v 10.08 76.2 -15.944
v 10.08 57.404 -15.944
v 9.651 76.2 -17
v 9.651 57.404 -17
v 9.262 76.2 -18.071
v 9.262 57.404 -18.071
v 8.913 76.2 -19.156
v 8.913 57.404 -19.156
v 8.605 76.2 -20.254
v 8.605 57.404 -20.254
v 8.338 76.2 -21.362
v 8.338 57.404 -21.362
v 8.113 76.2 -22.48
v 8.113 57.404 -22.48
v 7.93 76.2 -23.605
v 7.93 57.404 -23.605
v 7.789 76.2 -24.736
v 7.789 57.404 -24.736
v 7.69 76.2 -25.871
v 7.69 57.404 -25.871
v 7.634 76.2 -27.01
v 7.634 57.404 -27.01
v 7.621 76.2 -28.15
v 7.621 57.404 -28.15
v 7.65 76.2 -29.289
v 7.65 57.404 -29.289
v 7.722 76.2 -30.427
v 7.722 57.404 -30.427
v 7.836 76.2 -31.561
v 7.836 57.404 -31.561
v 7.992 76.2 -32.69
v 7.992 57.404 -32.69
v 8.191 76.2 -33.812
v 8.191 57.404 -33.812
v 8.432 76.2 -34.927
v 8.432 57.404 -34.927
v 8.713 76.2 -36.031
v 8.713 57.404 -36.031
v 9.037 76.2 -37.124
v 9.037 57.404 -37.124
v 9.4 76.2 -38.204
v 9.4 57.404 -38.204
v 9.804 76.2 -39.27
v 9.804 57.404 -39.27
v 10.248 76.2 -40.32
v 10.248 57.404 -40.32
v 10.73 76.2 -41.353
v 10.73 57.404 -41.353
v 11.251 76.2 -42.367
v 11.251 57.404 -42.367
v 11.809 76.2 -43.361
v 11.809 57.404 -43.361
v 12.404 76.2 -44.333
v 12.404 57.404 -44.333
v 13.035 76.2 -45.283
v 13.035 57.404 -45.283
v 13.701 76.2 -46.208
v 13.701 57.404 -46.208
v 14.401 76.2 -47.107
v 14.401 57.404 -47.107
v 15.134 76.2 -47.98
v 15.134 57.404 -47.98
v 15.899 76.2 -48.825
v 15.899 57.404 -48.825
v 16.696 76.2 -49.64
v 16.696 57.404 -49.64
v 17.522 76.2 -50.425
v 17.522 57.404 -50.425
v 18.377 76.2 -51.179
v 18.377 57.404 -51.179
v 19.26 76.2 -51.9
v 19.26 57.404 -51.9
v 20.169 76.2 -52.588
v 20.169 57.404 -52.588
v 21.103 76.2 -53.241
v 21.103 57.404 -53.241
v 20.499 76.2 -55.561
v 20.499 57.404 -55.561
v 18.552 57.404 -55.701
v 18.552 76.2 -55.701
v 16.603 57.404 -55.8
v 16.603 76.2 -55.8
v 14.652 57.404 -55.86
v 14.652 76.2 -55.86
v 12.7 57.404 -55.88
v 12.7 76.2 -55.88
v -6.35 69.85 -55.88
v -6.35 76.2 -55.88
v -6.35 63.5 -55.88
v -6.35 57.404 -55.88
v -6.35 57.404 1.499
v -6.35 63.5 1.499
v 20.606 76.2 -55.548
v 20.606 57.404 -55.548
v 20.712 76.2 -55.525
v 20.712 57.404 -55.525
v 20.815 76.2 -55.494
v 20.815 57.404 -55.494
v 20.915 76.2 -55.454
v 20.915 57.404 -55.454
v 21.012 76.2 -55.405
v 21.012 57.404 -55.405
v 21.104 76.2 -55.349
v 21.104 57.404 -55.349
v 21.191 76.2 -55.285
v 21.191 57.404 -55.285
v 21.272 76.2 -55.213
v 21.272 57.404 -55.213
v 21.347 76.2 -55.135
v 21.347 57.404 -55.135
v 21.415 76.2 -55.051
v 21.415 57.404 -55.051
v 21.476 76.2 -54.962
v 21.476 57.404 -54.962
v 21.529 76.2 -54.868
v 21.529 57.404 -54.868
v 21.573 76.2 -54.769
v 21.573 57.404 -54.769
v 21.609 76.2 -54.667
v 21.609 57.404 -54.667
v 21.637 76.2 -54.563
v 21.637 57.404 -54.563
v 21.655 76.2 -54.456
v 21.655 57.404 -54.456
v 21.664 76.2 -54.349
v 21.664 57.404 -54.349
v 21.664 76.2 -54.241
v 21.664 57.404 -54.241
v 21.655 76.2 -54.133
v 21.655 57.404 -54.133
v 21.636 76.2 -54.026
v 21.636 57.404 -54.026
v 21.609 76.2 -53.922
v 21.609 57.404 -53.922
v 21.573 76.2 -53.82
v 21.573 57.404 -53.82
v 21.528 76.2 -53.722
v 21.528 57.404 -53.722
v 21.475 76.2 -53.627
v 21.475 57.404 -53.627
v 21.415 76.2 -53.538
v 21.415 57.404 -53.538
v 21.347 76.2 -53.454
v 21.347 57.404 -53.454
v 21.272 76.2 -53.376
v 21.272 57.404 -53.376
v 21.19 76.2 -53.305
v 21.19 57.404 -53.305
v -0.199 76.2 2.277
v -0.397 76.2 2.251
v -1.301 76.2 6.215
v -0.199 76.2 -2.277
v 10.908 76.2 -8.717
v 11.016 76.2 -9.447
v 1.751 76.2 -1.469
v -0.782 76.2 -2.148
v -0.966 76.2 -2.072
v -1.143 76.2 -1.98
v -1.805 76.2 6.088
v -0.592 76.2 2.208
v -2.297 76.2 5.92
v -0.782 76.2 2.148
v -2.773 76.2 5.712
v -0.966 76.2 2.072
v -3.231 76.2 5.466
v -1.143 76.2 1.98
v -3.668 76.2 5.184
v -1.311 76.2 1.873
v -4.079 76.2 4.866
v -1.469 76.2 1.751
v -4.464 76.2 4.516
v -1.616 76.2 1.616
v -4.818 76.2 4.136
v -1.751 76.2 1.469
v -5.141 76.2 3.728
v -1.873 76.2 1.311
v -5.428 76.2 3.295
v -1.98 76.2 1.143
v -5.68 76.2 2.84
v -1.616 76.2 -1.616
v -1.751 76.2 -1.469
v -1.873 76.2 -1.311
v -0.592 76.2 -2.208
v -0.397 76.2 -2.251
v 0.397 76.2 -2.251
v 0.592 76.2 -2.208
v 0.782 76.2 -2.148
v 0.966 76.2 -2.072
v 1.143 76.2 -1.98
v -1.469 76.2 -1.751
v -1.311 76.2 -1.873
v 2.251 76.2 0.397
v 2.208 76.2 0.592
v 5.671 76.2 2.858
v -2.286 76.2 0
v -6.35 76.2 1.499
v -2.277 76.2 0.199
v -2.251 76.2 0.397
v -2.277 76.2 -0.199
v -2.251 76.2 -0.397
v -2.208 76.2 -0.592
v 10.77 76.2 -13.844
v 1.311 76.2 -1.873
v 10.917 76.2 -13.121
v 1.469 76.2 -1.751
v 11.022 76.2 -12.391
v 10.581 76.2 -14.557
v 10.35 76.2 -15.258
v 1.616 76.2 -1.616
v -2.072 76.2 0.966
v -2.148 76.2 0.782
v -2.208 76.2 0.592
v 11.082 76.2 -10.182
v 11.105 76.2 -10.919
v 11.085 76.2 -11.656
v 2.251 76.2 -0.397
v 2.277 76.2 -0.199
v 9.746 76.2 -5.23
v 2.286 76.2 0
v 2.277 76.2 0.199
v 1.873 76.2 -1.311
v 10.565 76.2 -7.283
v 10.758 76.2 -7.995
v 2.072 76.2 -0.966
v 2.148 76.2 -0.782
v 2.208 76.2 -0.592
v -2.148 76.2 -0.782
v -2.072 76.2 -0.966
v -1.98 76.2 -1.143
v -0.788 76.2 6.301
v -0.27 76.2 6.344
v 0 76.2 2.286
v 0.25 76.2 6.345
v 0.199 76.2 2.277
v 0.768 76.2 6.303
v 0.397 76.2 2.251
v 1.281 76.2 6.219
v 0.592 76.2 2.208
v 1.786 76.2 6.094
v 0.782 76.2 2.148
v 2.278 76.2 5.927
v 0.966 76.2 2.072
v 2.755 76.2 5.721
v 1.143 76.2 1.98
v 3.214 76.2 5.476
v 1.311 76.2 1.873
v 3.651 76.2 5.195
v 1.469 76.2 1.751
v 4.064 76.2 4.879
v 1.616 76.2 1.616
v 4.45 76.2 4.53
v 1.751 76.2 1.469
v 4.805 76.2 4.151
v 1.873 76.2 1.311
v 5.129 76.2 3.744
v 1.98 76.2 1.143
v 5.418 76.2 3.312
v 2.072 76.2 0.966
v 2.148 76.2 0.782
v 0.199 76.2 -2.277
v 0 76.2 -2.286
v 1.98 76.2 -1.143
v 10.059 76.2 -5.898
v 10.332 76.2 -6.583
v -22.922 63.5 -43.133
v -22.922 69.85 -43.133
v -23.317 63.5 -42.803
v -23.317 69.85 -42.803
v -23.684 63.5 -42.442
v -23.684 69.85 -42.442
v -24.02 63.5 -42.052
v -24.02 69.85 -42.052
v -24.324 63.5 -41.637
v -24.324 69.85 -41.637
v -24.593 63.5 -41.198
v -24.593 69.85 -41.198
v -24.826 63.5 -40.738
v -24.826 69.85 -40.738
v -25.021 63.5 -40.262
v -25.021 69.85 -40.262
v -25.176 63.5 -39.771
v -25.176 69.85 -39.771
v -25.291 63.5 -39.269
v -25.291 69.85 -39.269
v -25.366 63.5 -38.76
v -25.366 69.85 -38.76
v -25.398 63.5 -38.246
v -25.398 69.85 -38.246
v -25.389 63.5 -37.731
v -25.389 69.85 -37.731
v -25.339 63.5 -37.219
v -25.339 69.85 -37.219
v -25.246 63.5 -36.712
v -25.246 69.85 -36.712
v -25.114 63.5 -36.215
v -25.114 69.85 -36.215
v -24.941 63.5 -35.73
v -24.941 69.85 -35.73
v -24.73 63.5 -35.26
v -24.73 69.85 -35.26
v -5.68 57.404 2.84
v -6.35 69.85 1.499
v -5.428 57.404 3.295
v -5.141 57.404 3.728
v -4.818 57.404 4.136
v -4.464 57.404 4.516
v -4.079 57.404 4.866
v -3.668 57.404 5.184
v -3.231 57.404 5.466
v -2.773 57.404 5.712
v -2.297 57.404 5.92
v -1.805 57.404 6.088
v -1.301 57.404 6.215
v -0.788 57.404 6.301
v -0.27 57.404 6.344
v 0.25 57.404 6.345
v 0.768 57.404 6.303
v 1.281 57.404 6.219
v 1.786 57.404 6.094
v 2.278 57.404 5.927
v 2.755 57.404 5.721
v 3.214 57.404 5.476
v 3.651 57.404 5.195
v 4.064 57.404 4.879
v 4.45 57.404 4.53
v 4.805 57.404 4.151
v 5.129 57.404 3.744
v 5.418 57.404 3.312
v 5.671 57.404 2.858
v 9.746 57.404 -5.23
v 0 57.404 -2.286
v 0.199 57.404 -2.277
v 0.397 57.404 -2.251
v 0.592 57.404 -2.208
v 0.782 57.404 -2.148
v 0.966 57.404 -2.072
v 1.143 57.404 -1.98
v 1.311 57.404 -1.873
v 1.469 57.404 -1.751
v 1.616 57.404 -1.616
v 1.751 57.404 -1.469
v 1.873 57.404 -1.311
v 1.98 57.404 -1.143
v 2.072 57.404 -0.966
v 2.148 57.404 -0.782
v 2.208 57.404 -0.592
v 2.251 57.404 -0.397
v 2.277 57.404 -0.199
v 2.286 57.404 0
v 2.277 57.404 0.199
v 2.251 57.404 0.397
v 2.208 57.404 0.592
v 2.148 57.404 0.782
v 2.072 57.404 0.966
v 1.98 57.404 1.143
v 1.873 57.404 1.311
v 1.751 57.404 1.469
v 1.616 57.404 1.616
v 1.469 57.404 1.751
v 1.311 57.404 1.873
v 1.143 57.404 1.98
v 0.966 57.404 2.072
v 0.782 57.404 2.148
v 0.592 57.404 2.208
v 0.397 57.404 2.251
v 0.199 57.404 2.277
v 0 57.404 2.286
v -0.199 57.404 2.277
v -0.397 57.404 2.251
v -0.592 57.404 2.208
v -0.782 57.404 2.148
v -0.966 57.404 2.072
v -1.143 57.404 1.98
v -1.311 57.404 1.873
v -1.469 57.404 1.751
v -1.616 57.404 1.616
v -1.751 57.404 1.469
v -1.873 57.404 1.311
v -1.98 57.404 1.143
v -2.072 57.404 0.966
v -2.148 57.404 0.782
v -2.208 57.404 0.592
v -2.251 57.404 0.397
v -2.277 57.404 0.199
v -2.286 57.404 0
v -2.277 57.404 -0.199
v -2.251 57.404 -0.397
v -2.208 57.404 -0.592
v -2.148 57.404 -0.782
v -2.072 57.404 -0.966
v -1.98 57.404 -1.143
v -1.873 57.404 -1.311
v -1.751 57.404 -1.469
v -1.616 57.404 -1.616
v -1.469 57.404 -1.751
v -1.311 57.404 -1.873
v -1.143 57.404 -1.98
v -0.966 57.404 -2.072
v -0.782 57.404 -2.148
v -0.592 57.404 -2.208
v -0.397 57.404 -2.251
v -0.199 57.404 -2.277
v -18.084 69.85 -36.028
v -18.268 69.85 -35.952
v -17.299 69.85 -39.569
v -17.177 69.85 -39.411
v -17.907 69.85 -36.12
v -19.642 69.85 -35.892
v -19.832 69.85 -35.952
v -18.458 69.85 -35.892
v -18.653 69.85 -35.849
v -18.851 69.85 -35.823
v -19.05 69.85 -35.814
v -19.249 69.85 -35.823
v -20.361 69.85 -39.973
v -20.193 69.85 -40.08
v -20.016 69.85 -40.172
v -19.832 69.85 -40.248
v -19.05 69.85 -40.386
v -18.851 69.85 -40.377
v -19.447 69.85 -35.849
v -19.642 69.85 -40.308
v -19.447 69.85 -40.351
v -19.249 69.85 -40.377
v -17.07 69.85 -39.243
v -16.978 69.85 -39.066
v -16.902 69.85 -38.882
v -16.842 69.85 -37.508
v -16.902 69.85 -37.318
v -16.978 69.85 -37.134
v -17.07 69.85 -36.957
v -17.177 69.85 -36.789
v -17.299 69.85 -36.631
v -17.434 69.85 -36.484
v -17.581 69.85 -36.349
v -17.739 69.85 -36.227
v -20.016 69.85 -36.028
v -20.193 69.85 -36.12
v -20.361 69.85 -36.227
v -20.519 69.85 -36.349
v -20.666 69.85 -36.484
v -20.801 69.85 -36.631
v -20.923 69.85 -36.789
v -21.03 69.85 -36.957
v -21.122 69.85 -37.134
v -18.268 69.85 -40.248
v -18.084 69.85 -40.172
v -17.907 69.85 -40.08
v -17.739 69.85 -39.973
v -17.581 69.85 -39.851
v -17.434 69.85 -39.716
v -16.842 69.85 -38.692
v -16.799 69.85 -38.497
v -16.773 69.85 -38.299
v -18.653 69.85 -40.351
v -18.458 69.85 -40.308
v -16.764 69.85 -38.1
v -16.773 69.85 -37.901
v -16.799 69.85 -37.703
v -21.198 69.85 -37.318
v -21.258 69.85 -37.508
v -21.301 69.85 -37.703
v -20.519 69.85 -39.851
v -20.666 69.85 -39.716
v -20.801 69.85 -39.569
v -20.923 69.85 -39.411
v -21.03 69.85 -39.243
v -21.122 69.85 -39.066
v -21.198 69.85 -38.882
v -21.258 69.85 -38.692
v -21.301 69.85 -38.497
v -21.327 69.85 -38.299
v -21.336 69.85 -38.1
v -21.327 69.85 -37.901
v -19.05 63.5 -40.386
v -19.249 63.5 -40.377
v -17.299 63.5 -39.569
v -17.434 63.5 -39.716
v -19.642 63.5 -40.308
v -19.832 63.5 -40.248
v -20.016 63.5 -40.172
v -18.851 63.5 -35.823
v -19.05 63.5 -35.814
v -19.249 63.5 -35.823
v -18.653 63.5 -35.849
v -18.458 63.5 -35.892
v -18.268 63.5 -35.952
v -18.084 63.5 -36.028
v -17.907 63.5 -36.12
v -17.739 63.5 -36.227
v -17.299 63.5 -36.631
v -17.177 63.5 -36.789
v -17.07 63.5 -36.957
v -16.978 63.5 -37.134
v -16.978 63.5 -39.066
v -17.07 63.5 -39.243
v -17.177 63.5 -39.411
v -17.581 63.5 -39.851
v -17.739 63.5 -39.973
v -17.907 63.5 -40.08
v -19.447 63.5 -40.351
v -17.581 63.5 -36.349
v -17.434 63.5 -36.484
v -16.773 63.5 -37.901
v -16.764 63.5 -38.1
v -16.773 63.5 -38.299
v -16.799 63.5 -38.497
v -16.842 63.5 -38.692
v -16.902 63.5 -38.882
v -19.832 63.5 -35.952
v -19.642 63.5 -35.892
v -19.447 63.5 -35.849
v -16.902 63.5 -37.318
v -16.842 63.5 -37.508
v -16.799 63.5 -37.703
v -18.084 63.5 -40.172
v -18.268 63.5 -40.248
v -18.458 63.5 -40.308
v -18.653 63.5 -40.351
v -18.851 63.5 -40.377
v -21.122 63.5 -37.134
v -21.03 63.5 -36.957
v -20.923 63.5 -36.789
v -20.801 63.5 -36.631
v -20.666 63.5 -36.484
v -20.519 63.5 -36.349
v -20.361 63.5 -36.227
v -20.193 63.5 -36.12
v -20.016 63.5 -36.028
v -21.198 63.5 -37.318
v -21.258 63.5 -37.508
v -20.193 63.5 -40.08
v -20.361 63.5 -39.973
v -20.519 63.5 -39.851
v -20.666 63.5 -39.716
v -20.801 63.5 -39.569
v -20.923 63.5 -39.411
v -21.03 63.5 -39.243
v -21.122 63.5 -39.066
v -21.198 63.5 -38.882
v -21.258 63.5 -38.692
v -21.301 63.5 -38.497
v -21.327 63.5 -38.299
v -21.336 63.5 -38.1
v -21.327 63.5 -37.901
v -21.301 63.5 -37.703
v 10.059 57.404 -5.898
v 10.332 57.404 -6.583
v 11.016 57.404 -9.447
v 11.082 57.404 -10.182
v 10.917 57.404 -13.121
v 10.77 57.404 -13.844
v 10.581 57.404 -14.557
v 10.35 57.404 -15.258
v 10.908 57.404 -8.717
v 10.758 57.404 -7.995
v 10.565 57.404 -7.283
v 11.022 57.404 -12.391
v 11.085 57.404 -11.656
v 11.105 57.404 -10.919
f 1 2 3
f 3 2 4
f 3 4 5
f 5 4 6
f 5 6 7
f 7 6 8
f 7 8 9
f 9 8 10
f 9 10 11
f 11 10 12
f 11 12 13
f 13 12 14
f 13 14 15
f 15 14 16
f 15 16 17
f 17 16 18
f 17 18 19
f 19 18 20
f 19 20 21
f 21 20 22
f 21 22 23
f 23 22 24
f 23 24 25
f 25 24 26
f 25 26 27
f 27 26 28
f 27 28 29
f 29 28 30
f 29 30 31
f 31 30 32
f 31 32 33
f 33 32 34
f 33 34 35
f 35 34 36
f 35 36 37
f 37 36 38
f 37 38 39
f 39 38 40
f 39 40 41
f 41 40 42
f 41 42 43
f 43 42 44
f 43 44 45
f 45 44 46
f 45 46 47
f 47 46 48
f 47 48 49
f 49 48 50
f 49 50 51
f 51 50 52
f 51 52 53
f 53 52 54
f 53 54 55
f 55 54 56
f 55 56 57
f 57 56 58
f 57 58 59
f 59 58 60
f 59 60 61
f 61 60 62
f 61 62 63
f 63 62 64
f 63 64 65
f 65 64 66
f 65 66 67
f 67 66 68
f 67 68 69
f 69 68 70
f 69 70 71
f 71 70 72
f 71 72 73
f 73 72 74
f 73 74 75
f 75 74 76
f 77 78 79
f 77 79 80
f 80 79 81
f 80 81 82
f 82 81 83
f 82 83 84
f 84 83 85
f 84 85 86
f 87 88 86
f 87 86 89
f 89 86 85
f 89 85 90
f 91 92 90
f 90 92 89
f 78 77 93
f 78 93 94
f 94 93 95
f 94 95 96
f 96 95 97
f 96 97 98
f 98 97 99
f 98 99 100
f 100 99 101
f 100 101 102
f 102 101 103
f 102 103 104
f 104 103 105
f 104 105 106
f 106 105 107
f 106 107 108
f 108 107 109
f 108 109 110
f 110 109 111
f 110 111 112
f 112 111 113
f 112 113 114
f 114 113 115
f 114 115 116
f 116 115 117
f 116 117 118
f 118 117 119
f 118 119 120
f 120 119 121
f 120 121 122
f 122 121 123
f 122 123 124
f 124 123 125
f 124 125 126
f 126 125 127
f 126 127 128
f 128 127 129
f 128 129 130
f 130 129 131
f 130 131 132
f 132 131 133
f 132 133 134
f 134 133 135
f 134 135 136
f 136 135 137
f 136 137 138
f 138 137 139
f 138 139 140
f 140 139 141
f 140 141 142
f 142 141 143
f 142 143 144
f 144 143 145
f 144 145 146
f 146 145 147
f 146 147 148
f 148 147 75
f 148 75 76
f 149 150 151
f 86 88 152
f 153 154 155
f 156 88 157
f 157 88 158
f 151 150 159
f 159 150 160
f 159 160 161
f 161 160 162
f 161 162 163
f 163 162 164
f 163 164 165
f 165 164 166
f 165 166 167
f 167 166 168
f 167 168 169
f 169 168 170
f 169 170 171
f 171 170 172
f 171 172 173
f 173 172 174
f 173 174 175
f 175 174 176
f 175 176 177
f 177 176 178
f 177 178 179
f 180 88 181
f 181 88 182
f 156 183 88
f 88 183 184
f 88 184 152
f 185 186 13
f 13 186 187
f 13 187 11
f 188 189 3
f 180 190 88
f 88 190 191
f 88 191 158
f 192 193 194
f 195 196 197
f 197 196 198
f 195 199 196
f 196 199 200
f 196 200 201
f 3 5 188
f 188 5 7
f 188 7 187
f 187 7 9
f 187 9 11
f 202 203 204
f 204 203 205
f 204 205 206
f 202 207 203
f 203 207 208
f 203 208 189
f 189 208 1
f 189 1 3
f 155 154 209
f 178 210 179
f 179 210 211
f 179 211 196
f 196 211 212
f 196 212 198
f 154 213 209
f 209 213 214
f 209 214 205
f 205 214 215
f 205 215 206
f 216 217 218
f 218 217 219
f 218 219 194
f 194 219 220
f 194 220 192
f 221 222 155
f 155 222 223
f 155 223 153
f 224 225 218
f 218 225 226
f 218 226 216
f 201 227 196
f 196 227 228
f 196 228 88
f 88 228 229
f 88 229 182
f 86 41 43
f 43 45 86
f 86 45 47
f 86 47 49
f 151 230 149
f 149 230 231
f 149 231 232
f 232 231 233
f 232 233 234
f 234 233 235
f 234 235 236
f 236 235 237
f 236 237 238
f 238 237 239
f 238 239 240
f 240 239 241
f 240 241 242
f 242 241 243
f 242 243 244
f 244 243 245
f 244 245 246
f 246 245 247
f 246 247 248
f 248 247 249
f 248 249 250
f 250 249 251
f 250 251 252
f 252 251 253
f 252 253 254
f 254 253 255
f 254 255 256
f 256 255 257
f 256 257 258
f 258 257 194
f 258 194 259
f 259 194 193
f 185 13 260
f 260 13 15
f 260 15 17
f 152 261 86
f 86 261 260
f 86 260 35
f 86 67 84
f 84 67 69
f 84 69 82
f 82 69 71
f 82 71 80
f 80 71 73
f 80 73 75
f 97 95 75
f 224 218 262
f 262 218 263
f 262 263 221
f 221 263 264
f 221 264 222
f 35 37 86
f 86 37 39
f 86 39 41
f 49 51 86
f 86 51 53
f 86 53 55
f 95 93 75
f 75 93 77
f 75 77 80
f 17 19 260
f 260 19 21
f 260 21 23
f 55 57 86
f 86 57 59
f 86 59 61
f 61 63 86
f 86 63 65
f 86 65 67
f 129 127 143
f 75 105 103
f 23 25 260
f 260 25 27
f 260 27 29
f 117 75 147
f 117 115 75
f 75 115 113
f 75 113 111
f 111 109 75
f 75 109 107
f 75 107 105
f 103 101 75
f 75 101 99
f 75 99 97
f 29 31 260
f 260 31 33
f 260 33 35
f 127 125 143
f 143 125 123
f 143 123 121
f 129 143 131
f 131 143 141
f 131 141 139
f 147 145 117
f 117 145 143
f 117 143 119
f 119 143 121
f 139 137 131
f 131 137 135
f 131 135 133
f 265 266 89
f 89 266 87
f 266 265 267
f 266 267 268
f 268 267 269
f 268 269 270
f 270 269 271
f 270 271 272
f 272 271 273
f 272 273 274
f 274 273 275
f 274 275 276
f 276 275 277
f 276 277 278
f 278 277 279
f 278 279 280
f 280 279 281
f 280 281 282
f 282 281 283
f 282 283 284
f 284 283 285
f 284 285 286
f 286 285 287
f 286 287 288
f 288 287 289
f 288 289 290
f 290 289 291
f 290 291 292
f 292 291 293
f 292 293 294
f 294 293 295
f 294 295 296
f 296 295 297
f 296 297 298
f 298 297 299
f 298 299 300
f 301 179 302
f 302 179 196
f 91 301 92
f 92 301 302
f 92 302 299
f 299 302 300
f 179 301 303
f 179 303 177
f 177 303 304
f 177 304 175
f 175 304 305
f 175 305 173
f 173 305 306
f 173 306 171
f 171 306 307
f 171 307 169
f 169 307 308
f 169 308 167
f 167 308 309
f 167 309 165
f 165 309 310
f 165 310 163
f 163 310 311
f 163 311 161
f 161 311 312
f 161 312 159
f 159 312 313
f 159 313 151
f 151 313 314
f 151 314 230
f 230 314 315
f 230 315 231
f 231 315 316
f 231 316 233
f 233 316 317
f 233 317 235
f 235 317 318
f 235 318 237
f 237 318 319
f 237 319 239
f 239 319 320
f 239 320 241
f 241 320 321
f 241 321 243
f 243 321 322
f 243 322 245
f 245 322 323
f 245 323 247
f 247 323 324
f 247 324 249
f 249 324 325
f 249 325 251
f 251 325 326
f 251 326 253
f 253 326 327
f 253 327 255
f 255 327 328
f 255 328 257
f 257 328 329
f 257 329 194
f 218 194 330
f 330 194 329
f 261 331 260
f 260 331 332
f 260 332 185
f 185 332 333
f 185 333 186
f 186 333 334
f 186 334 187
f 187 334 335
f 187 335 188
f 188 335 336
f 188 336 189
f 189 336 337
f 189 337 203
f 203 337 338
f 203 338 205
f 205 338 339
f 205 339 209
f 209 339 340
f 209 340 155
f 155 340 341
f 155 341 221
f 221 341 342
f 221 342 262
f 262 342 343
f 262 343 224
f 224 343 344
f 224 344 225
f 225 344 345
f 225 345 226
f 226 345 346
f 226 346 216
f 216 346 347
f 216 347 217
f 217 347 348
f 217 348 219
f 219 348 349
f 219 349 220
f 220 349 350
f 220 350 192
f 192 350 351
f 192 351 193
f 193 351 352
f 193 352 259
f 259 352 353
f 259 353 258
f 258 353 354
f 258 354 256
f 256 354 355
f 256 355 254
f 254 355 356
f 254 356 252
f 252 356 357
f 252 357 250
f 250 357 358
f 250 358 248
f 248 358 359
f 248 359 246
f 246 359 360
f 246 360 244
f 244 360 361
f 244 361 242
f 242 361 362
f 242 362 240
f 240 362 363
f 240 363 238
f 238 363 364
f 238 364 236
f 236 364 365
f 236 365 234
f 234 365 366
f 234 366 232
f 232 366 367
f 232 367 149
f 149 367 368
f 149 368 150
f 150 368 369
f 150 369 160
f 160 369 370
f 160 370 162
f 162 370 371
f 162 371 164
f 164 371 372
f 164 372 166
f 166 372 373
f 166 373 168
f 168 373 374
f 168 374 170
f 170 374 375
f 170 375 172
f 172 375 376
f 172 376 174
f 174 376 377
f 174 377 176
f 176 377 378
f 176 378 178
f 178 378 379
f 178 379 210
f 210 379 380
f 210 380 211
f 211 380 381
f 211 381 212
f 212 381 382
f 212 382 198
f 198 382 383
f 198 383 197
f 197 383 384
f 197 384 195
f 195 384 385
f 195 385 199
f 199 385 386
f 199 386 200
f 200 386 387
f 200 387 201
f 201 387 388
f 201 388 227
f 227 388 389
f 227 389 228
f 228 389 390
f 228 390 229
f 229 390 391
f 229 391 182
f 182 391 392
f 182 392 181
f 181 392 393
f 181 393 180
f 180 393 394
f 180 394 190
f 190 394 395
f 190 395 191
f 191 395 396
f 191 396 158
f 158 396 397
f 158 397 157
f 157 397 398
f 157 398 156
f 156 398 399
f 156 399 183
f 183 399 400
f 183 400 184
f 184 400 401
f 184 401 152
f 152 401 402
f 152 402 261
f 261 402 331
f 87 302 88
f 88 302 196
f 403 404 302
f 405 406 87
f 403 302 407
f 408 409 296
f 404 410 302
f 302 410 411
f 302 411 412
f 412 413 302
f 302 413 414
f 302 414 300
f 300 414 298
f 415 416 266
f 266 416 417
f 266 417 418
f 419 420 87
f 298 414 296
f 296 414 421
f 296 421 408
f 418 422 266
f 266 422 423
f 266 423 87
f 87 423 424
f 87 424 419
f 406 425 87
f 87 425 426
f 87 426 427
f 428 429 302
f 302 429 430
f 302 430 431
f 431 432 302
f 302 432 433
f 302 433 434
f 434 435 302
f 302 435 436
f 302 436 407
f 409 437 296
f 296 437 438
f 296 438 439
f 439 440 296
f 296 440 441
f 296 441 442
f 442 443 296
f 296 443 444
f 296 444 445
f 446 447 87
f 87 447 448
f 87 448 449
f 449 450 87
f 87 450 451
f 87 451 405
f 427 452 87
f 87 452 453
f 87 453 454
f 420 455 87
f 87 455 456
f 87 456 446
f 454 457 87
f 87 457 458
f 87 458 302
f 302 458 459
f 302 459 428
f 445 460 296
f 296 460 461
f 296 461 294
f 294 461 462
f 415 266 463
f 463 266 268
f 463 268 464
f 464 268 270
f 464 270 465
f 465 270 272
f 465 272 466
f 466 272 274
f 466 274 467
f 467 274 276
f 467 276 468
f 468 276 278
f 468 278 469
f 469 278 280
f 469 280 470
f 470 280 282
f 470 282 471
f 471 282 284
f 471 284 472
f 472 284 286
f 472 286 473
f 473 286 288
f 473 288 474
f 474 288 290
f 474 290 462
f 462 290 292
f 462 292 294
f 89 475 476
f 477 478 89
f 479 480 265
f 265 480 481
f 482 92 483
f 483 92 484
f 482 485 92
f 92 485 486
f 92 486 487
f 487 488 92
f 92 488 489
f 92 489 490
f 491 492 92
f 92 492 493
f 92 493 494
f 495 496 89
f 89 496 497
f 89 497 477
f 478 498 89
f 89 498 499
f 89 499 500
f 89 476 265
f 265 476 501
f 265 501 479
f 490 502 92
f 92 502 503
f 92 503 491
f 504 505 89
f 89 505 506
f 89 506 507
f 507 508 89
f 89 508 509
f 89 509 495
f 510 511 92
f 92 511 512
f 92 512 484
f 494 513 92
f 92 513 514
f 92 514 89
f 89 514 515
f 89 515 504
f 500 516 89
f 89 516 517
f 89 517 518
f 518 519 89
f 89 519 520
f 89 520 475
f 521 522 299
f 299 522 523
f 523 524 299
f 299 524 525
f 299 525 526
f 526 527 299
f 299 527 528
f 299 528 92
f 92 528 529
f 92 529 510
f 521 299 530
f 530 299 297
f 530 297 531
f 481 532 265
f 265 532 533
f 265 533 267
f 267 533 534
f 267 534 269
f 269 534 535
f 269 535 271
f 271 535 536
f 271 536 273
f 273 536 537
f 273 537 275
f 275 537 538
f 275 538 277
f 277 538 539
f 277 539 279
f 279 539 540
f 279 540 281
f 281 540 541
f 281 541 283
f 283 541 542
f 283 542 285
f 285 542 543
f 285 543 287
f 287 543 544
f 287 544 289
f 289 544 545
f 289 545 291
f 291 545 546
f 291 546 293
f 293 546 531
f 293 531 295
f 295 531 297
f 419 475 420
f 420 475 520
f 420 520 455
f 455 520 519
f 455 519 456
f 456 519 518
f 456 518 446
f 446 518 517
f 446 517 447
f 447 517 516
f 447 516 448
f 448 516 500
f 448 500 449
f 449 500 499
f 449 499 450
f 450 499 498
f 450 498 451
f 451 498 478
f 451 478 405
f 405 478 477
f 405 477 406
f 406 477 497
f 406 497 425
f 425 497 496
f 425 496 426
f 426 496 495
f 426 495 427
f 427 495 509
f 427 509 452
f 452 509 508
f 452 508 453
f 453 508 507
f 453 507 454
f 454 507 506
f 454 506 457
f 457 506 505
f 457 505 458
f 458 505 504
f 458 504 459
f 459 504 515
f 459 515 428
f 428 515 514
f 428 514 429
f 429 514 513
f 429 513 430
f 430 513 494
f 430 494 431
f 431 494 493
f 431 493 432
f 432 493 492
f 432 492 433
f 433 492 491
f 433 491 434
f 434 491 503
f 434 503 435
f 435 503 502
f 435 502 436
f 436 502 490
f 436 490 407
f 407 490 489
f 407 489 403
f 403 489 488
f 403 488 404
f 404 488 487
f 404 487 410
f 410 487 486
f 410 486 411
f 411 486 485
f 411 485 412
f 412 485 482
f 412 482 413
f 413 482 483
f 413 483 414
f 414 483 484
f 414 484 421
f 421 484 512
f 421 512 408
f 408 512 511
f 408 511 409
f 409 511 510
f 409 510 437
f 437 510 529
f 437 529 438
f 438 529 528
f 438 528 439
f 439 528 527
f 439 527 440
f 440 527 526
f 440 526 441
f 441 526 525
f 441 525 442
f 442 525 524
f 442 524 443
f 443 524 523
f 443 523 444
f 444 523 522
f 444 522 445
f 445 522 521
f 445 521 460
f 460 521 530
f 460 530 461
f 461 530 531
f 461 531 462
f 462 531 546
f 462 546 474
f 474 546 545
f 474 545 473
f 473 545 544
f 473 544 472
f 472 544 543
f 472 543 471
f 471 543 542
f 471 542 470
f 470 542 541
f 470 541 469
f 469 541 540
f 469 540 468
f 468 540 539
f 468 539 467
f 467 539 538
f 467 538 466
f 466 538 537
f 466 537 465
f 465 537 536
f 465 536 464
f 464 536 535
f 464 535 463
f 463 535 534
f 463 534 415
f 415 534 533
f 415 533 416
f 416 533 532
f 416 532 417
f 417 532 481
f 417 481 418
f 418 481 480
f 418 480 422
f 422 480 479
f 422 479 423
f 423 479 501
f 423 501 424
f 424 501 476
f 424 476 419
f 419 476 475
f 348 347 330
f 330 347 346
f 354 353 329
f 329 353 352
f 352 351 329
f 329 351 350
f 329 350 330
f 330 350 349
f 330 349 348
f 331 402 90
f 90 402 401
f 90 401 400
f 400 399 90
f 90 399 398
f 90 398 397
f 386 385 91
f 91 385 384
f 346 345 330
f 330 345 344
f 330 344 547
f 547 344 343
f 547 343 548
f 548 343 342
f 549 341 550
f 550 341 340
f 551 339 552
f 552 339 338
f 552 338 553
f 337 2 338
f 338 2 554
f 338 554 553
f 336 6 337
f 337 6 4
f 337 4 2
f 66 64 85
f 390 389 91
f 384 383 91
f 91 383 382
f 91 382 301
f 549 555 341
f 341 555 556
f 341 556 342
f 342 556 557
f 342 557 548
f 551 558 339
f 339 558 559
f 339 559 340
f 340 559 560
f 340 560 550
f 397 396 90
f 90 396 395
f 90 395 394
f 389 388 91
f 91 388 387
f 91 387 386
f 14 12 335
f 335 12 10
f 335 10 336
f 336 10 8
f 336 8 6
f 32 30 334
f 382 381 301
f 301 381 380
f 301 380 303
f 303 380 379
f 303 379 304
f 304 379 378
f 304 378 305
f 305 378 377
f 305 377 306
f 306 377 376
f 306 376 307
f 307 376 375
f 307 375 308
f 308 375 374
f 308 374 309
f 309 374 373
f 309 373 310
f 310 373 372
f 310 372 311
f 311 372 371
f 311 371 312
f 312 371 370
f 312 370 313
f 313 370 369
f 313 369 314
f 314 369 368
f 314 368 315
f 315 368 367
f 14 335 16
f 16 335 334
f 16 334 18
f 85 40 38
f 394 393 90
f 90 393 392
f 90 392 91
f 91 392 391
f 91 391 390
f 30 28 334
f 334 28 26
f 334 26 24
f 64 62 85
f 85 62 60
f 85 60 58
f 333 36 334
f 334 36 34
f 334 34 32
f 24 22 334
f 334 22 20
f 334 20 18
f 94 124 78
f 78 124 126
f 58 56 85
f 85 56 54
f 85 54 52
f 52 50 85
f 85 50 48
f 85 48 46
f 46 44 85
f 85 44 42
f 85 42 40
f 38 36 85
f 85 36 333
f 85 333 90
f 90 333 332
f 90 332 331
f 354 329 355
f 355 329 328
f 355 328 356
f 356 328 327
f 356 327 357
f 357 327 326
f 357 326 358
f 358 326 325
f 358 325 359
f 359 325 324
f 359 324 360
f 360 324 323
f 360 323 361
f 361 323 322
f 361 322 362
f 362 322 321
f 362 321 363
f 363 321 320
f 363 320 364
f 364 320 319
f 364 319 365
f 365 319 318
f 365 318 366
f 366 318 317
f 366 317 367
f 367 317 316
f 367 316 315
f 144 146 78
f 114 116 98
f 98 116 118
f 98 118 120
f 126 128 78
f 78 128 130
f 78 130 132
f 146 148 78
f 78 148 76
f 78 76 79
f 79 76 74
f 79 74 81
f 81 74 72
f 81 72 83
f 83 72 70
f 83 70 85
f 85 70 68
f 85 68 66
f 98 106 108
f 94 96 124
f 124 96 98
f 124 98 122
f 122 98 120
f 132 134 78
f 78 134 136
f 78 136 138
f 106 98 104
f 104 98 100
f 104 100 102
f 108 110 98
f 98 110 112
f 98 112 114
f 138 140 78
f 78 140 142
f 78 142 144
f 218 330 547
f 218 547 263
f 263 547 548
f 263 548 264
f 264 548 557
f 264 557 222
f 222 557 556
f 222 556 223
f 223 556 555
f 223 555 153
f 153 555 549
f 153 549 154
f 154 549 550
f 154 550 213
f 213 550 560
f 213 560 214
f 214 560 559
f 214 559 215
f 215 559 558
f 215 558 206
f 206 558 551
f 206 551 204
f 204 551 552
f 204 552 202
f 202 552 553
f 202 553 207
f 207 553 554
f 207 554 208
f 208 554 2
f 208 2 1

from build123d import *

# Parameters (mm, degrees)
SKETCH1_R           = 2.286
BOSS_EXTRUDE1_DEPTH = 76.2
SKETCH2_W           = 19.05
SKETCH2_H           = 63.5
SKETCH2_H_2         = 6.35
CUT_EXTRUDE1_DEPTH  = 102.60793719
SKETCH3_W           = 25.4
SKETCH3_H           = 6.858
CUT_EXTRUDE2_DEPTH  = 100.367382835
FILLET1_R           = 1.27
FILLET2_R           = 12.7
SKETCH4_W           = 59.009552573
SKETCH4_H           = 74.343024825
CUT_EXTRUDE3_DEPTH  = 85.041380514


with BuildPart() as part:
    # Sketch1 → Boss-Extrude1 (new body)
    with BuildSketch(Plane(origin=(0, 0, 0), x_dir=(1, 0, 0), z_dir=(0, 1, 0))):
        with BuildLine():
            Line((-5.679612663, -2.839806331), (-24.729612663, 35.260193669))
            ThreePointArc((-24.729612663, 35.260193669), (-25.238895582, 39.521292183), (-22.921549668, 43.133249763))
            Line((-22.921549668, 43.133249763), (-6.35, 55.88))
            Line((-6.35, 55.88), (12.7, 55.88))
            ThreePointArc((12.7, 55.88), (18.555327731, 55.700289554), (24.388613689, 55.161834718))
            ThreePointArc((24.388613689, 55.161834718), (8.638623245, 35.753941369), (12.7, 11.091546065))
            Line((12.7, 11.091546065), (5.670682494, -2.857596902))
            ThreePointArc((5.670682494, -2.857596902), (-0.009953044, -6.3499922), (-5.679612663, -2.839806331))
        make_face()
        with Locations(Location((0, 0, 0), (0, 0, 90))):
            Circle(SKETCH1_R, mode=Mode.SUBTRACT)
        with Locations(Location((-19.05, 38.1, 0), (0, 0, 90))):
            Circle(SKETCH1_R, mode=Mode.SUBTRACT)
    extrude(amount=BOSS_EXTRUDE1_DEPTH)

    # Sketch2 → Cut-Extrude1 (cut, through all)
    with BuildSketch(Plane(origin=(0, 0, -55.88), x_dir=(-1, 0, 0), z_dir=(0, 0, -1))):
        with Locations((15.875, 31.75)):
            Rectangle(SKETCH2_W, SKETCH2_H)
        with Locations((15.875, 73.025)):
            Rectangle(SKETCH2_W, SKETCH2_H_2)
    extrude(amount=-CUT_EXTRUDE1_DEPTH, mode=Mode.SUBTRACT)

    # Sketch3 → Cut-Extrude2 (cut, through all)
    with BuildSketch(Plane.ZY.offset(6.35)):
        with Locations((-6.35, 53.975)):
            Rectangle(SKETCH3_W, SKETCH3_H)
    extrude(amount=-CUT_EXTRUDE2_DEPTH, mode=Mode.SUBTRACT)

    # Fillet1
    fillet1_edges = [part.edges().sort_by_distance(p)[0] for p in [
        (24.388613689, 38.1, -55.161834718),
    ]]
    fillet(fillet1_edges, radius=FILLET1_R)

    # Fillet2
    fillet2_edges = [part.edges().sort_by_distance(p)[0] for p in [
        (12.7, 66.802, -11.091546065),
        (12.7, 25.273, -11.091546065),
    ]]
    fillet(fillet2_edges, radius=FILLET2_R)

    # Sketch4 → Cut-Extrude3 (cut, through all)
    with BuildSketch(Plane.XZ.offset(-57.404)):
        with Locations((-1.749174137, -25.683599477)):
            Rectangle(SKETCH4_W, SKETCH4_H)
    extrude(amount=CUT_EXTRUDE3_DEPTH, mode=Mode.SUBTRACT)


solid = part.part
